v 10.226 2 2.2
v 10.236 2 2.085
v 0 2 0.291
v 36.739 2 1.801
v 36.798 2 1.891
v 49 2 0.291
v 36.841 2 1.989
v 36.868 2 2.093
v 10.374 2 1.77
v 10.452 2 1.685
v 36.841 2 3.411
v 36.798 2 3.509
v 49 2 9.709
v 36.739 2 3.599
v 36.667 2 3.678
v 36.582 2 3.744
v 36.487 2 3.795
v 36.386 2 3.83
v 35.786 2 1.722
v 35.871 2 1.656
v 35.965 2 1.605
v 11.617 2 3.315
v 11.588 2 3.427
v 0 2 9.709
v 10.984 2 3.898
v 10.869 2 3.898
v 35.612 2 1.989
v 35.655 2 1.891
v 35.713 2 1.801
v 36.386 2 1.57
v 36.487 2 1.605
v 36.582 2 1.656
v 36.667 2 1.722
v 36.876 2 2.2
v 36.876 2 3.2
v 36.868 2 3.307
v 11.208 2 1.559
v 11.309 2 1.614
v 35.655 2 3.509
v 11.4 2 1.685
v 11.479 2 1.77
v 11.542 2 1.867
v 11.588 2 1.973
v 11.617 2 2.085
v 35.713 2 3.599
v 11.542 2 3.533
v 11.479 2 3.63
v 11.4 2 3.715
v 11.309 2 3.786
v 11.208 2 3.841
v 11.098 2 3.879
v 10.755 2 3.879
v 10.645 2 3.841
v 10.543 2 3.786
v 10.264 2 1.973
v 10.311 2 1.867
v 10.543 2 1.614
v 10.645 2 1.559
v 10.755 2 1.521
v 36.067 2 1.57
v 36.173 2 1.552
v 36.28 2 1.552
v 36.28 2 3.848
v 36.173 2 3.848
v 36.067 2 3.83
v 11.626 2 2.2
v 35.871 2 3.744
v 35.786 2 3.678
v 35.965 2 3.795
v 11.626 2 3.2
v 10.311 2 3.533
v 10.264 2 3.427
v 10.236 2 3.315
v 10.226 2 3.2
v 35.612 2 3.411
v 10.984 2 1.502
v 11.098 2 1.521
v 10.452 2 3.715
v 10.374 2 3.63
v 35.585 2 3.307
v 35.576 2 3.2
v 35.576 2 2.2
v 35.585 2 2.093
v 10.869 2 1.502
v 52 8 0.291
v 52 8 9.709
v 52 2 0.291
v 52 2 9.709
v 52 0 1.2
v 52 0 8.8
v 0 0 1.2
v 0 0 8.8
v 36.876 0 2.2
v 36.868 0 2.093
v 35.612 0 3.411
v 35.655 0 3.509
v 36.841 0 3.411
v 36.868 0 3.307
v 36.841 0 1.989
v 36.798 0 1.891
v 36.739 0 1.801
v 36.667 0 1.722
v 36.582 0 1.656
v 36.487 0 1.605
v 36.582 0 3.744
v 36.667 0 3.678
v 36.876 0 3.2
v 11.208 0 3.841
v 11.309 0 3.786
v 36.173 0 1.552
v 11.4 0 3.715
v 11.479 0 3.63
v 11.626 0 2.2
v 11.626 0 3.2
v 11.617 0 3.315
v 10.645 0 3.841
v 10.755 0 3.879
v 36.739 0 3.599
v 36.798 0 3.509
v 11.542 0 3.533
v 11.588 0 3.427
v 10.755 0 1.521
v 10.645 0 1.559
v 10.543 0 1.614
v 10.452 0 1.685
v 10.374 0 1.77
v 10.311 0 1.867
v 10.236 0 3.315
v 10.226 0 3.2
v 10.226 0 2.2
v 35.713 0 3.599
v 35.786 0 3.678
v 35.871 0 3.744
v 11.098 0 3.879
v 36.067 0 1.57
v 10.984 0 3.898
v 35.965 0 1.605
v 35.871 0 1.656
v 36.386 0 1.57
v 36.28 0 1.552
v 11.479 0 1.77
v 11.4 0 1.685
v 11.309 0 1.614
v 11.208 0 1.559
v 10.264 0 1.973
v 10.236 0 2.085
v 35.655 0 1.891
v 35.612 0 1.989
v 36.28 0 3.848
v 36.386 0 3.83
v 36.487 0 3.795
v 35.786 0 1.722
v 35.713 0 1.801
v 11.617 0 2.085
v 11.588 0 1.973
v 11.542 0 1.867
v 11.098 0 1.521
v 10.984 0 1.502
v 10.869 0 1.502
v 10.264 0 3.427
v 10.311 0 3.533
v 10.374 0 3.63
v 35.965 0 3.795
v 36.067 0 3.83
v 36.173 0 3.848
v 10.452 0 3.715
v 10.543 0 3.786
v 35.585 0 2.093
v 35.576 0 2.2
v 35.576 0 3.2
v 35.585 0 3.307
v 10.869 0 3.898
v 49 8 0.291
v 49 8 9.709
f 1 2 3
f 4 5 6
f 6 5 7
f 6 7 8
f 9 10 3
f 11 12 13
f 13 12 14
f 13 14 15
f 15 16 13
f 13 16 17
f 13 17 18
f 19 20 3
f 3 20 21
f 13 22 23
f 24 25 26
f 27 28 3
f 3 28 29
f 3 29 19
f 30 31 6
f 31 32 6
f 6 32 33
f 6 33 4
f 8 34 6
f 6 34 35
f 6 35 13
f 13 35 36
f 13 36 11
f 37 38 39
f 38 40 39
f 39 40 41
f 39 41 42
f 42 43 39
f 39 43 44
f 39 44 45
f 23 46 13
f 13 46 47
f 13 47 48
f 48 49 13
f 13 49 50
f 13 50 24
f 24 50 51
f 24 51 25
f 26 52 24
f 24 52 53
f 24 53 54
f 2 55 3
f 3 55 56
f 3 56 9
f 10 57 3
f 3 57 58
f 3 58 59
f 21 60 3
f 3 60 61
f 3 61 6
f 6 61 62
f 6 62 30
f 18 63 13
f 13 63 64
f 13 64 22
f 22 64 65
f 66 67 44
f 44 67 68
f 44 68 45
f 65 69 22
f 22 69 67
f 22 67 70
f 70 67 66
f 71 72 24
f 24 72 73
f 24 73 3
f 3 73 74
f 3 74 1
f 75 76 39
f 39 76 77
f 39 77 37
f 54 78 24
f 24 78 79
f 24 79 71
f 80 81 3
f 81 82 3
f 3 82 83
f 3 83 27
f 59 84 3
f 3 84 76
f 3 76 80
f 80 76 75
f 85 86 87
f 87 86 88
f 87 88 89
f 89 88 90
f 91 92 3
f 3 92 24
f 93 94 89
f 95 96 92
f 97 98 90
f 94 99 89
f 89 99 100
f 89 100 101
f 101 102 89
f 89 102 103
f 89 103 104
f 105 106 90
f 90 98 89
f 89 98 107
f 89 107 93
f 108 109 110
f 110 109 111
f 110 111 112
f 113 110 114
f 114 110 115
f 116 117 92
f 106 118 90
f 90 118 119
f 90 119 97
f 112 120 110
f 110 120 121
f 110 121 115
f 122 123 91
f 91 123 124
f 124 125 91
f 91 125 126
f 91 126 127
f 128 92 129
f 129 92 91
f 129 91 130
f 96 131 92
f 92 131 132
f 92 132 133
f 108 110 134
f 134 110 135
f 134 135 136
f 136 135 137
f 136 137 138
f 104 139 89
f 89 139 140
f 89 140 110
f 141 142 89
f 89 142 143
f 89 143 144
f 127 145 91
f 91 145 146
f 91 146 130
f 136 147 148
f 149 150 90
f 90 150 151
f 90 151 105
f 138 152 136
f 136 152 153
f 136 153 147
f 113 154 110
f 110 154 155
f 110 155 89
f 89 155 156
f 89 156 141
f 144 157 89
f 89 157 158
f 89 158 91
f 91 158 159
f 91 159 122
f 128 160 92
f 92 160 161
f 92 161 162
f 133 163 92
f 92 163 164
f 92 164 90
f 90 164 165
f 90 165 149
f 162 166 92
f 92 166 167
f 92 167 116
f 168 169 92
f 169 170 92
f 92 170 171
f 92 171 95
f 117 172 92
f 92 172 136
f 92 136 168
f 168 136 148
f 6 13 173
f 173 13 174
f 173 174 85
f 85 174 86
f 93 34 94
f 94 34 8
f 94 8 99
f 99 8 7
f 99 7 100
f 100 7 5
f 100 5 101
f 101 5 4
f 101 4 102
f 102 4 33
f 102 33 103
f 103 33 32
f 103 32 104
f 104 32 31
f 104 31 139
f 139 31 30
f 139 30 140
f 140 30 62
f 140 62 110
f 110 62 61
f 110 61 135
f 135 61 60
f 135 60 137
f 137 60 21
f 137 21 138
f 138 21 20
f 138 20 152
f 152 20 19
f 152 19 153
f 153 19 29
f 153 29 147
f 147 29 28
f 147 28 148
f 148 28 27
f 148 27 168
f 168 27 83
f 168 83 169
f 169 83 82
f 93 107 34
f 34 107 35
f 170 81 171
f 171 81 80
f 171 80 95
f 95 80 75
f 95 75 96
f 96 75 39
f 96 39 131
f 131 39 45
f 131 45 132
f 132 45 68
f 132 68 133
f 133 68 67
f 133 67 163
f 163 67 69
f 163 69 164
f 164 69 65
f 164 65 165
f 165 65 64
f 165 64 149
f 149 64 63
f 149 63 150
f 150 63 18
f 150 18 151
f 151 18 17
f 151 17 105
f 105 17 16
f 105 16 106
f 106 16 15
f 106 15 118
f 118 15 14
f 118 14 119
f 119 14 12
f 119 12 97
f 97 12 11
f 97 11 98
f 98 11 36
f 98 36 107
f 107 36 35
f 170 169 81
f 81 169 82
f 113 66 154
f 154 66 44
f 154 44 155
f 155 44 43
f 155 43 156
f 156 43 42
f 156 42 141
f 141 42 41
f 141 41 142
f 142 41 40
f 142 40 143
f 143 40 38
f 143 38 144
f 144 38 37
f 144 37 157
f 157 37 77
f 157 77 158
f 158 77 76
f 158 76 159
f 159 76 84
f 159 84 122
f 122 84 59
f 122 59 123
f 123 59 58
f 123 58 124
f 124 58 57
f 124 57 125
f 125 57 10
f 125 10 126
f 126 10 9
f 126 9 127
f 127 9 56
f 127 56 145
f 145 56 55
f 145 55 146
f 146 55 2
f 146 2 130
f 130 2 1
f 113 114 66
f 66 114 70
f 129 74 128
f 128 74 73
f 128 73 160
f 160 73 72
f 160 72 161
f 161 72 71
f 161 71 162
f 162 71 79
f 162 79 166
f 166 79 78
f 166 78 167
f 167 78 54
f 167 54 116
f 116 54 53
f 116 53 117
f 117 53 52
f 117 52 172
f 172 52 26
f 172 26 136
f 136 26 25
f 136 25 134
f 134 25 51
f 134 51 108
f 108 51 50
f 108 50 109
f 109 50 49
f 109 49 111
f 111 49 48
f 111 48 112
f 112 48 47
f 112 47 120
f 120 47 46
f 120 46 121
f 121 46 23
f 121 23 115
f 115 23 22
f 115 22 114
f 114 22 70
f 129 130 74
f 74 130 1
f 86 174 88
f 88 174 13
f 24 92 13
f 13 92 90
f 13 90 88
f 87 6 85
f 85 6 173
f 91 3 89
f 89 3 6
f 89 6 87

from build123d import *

# Parameters (mm, degrees)
SKETCH_1_W               = 52
SKETCH_1_H               = 10
EXTRUDE_1_DEPTH          = 2
SKETCH_5_R               = 0.6
CUT_EXTRUDE_1_DEPTH      = 53.990565198
SKETCH_6_W               = 3
SKETCH_6_H               = 10
EXTRUDE_2_DEPTH          = 6
CUT_EXTRUDE_2_DEPTH      = 54.291650378
CUT_EXTRUDE_3_DEPTH      = 54.553711356
CUT_EXTRUDE_3_DEPTH_BACK = 54.553711356


with BuildPart() as part:
    # 草图1 → 凸台-拉伸1 (new body)
    with BuildSketch(Plane(origin=(0, 0, 0), x_dir=(1, 0, 0), z_dir=(0, 1, 0))):
        with Locations((26, -5)):
            Rectangle(SKETCH_1_W, SKETCH_1_H)
    extrude(amount=EXTRUDE_1_DEPTH)

    # 草图5 → 切除-拉伸1 (cut, through all)
    with BuildSketch(Plane(origin=(0, 2, 0), x_dir=(1, 0, 0), z_dir=(0, 1, 0))):
        with Locations(Location((36.226363192, -2.7, 0), (0, 0, 270))):
            Circle(SKETCH_5_R)
        with Locations(Location((10.926363192, -2.7, 0), (0, 0, 270))):
            Circle(SKETCH_5_R)
    extrude(amount=-CUT_EXTRUDE_1_DEPTH, mode=Mode.SUBTRACT)

    # 草图6 → 凸台-拉伸2 (add)
    with BuildSketch(Plane(origin=(0, 2, 0), x_dir=(1, 0, 0), z_dir=(0, 1, 0))):
        with Locations((50.5, -5)):
            Rectangle(SKETCH_6_W, SKETCH_6_H)
    extrude(amount=EXTRUDE_2_DEPTH)

    # 草图7 → 切除-拉伸2 (cut, through all)
    with BuildSketch(Plane(origin=(0, 2, 0), x_dir=(1, 0, 0), z_dir=(0, 1, 0))):
        with BuildLine():
            Line((11.626363192, -2.2), (11.626363192, -3.2))
            ThreePointArc((11.626363192, -3.2), (10.926363192, -3.9), (10.226363192, -3.2))
            Line((10.226363192, -3.2), (10.226363192, -2.2))
            ThreePointArc((10.226363192, -2.2), (10.926363192, -1.5), (11.626363192, -2.2))
        make_face()
        with BuildLine():
            Line((36.876363192, -2.2), (36.876363192, -3.2))
            ThreePointArc((36.876363192, -3.2), (36.226363192, -3.85), (35.576363192, -3.2))
            Line((35.576363192, -3.2), (35.576363192, -2.2))
            ThreePointArc((35.576363192, -2.2), (36.226363192, -1.55), (36.876363192, -2.2))
        make_face()
    extrude(amount=-CUT_EXTRUDE_2_DEPTH, mode=Mode.SUBTRACT)

    # 草图9 → 切除-拉伸3 (cut, two sides: drawn at the far end of the back side and taken through both)
    with BuildSketch(Plane(origin=(52, 0, 0), x_dir=(0, 0, -1), z_dir=(1, 0, 0)).offset(-CUT_EXTRUDE_3_DEPTH_BACK)):
        Polygon((-0.290909091, 2), (-1.2, 0), (0, 0), (0, 8), (-0.290909091, 8), align=None)
        Polygon((-9.709090909, 2), (-8.8, 0), (-10, 0), (-10, 8), (-9.709090909, 8), align=None)
    extrude(amount=CUT_EXTRUDE_3_DEPTH + CUT_EXTRUDE_3_DEPTH_BACK, mode=Mode.SUBTRACT)


solid = part.part
